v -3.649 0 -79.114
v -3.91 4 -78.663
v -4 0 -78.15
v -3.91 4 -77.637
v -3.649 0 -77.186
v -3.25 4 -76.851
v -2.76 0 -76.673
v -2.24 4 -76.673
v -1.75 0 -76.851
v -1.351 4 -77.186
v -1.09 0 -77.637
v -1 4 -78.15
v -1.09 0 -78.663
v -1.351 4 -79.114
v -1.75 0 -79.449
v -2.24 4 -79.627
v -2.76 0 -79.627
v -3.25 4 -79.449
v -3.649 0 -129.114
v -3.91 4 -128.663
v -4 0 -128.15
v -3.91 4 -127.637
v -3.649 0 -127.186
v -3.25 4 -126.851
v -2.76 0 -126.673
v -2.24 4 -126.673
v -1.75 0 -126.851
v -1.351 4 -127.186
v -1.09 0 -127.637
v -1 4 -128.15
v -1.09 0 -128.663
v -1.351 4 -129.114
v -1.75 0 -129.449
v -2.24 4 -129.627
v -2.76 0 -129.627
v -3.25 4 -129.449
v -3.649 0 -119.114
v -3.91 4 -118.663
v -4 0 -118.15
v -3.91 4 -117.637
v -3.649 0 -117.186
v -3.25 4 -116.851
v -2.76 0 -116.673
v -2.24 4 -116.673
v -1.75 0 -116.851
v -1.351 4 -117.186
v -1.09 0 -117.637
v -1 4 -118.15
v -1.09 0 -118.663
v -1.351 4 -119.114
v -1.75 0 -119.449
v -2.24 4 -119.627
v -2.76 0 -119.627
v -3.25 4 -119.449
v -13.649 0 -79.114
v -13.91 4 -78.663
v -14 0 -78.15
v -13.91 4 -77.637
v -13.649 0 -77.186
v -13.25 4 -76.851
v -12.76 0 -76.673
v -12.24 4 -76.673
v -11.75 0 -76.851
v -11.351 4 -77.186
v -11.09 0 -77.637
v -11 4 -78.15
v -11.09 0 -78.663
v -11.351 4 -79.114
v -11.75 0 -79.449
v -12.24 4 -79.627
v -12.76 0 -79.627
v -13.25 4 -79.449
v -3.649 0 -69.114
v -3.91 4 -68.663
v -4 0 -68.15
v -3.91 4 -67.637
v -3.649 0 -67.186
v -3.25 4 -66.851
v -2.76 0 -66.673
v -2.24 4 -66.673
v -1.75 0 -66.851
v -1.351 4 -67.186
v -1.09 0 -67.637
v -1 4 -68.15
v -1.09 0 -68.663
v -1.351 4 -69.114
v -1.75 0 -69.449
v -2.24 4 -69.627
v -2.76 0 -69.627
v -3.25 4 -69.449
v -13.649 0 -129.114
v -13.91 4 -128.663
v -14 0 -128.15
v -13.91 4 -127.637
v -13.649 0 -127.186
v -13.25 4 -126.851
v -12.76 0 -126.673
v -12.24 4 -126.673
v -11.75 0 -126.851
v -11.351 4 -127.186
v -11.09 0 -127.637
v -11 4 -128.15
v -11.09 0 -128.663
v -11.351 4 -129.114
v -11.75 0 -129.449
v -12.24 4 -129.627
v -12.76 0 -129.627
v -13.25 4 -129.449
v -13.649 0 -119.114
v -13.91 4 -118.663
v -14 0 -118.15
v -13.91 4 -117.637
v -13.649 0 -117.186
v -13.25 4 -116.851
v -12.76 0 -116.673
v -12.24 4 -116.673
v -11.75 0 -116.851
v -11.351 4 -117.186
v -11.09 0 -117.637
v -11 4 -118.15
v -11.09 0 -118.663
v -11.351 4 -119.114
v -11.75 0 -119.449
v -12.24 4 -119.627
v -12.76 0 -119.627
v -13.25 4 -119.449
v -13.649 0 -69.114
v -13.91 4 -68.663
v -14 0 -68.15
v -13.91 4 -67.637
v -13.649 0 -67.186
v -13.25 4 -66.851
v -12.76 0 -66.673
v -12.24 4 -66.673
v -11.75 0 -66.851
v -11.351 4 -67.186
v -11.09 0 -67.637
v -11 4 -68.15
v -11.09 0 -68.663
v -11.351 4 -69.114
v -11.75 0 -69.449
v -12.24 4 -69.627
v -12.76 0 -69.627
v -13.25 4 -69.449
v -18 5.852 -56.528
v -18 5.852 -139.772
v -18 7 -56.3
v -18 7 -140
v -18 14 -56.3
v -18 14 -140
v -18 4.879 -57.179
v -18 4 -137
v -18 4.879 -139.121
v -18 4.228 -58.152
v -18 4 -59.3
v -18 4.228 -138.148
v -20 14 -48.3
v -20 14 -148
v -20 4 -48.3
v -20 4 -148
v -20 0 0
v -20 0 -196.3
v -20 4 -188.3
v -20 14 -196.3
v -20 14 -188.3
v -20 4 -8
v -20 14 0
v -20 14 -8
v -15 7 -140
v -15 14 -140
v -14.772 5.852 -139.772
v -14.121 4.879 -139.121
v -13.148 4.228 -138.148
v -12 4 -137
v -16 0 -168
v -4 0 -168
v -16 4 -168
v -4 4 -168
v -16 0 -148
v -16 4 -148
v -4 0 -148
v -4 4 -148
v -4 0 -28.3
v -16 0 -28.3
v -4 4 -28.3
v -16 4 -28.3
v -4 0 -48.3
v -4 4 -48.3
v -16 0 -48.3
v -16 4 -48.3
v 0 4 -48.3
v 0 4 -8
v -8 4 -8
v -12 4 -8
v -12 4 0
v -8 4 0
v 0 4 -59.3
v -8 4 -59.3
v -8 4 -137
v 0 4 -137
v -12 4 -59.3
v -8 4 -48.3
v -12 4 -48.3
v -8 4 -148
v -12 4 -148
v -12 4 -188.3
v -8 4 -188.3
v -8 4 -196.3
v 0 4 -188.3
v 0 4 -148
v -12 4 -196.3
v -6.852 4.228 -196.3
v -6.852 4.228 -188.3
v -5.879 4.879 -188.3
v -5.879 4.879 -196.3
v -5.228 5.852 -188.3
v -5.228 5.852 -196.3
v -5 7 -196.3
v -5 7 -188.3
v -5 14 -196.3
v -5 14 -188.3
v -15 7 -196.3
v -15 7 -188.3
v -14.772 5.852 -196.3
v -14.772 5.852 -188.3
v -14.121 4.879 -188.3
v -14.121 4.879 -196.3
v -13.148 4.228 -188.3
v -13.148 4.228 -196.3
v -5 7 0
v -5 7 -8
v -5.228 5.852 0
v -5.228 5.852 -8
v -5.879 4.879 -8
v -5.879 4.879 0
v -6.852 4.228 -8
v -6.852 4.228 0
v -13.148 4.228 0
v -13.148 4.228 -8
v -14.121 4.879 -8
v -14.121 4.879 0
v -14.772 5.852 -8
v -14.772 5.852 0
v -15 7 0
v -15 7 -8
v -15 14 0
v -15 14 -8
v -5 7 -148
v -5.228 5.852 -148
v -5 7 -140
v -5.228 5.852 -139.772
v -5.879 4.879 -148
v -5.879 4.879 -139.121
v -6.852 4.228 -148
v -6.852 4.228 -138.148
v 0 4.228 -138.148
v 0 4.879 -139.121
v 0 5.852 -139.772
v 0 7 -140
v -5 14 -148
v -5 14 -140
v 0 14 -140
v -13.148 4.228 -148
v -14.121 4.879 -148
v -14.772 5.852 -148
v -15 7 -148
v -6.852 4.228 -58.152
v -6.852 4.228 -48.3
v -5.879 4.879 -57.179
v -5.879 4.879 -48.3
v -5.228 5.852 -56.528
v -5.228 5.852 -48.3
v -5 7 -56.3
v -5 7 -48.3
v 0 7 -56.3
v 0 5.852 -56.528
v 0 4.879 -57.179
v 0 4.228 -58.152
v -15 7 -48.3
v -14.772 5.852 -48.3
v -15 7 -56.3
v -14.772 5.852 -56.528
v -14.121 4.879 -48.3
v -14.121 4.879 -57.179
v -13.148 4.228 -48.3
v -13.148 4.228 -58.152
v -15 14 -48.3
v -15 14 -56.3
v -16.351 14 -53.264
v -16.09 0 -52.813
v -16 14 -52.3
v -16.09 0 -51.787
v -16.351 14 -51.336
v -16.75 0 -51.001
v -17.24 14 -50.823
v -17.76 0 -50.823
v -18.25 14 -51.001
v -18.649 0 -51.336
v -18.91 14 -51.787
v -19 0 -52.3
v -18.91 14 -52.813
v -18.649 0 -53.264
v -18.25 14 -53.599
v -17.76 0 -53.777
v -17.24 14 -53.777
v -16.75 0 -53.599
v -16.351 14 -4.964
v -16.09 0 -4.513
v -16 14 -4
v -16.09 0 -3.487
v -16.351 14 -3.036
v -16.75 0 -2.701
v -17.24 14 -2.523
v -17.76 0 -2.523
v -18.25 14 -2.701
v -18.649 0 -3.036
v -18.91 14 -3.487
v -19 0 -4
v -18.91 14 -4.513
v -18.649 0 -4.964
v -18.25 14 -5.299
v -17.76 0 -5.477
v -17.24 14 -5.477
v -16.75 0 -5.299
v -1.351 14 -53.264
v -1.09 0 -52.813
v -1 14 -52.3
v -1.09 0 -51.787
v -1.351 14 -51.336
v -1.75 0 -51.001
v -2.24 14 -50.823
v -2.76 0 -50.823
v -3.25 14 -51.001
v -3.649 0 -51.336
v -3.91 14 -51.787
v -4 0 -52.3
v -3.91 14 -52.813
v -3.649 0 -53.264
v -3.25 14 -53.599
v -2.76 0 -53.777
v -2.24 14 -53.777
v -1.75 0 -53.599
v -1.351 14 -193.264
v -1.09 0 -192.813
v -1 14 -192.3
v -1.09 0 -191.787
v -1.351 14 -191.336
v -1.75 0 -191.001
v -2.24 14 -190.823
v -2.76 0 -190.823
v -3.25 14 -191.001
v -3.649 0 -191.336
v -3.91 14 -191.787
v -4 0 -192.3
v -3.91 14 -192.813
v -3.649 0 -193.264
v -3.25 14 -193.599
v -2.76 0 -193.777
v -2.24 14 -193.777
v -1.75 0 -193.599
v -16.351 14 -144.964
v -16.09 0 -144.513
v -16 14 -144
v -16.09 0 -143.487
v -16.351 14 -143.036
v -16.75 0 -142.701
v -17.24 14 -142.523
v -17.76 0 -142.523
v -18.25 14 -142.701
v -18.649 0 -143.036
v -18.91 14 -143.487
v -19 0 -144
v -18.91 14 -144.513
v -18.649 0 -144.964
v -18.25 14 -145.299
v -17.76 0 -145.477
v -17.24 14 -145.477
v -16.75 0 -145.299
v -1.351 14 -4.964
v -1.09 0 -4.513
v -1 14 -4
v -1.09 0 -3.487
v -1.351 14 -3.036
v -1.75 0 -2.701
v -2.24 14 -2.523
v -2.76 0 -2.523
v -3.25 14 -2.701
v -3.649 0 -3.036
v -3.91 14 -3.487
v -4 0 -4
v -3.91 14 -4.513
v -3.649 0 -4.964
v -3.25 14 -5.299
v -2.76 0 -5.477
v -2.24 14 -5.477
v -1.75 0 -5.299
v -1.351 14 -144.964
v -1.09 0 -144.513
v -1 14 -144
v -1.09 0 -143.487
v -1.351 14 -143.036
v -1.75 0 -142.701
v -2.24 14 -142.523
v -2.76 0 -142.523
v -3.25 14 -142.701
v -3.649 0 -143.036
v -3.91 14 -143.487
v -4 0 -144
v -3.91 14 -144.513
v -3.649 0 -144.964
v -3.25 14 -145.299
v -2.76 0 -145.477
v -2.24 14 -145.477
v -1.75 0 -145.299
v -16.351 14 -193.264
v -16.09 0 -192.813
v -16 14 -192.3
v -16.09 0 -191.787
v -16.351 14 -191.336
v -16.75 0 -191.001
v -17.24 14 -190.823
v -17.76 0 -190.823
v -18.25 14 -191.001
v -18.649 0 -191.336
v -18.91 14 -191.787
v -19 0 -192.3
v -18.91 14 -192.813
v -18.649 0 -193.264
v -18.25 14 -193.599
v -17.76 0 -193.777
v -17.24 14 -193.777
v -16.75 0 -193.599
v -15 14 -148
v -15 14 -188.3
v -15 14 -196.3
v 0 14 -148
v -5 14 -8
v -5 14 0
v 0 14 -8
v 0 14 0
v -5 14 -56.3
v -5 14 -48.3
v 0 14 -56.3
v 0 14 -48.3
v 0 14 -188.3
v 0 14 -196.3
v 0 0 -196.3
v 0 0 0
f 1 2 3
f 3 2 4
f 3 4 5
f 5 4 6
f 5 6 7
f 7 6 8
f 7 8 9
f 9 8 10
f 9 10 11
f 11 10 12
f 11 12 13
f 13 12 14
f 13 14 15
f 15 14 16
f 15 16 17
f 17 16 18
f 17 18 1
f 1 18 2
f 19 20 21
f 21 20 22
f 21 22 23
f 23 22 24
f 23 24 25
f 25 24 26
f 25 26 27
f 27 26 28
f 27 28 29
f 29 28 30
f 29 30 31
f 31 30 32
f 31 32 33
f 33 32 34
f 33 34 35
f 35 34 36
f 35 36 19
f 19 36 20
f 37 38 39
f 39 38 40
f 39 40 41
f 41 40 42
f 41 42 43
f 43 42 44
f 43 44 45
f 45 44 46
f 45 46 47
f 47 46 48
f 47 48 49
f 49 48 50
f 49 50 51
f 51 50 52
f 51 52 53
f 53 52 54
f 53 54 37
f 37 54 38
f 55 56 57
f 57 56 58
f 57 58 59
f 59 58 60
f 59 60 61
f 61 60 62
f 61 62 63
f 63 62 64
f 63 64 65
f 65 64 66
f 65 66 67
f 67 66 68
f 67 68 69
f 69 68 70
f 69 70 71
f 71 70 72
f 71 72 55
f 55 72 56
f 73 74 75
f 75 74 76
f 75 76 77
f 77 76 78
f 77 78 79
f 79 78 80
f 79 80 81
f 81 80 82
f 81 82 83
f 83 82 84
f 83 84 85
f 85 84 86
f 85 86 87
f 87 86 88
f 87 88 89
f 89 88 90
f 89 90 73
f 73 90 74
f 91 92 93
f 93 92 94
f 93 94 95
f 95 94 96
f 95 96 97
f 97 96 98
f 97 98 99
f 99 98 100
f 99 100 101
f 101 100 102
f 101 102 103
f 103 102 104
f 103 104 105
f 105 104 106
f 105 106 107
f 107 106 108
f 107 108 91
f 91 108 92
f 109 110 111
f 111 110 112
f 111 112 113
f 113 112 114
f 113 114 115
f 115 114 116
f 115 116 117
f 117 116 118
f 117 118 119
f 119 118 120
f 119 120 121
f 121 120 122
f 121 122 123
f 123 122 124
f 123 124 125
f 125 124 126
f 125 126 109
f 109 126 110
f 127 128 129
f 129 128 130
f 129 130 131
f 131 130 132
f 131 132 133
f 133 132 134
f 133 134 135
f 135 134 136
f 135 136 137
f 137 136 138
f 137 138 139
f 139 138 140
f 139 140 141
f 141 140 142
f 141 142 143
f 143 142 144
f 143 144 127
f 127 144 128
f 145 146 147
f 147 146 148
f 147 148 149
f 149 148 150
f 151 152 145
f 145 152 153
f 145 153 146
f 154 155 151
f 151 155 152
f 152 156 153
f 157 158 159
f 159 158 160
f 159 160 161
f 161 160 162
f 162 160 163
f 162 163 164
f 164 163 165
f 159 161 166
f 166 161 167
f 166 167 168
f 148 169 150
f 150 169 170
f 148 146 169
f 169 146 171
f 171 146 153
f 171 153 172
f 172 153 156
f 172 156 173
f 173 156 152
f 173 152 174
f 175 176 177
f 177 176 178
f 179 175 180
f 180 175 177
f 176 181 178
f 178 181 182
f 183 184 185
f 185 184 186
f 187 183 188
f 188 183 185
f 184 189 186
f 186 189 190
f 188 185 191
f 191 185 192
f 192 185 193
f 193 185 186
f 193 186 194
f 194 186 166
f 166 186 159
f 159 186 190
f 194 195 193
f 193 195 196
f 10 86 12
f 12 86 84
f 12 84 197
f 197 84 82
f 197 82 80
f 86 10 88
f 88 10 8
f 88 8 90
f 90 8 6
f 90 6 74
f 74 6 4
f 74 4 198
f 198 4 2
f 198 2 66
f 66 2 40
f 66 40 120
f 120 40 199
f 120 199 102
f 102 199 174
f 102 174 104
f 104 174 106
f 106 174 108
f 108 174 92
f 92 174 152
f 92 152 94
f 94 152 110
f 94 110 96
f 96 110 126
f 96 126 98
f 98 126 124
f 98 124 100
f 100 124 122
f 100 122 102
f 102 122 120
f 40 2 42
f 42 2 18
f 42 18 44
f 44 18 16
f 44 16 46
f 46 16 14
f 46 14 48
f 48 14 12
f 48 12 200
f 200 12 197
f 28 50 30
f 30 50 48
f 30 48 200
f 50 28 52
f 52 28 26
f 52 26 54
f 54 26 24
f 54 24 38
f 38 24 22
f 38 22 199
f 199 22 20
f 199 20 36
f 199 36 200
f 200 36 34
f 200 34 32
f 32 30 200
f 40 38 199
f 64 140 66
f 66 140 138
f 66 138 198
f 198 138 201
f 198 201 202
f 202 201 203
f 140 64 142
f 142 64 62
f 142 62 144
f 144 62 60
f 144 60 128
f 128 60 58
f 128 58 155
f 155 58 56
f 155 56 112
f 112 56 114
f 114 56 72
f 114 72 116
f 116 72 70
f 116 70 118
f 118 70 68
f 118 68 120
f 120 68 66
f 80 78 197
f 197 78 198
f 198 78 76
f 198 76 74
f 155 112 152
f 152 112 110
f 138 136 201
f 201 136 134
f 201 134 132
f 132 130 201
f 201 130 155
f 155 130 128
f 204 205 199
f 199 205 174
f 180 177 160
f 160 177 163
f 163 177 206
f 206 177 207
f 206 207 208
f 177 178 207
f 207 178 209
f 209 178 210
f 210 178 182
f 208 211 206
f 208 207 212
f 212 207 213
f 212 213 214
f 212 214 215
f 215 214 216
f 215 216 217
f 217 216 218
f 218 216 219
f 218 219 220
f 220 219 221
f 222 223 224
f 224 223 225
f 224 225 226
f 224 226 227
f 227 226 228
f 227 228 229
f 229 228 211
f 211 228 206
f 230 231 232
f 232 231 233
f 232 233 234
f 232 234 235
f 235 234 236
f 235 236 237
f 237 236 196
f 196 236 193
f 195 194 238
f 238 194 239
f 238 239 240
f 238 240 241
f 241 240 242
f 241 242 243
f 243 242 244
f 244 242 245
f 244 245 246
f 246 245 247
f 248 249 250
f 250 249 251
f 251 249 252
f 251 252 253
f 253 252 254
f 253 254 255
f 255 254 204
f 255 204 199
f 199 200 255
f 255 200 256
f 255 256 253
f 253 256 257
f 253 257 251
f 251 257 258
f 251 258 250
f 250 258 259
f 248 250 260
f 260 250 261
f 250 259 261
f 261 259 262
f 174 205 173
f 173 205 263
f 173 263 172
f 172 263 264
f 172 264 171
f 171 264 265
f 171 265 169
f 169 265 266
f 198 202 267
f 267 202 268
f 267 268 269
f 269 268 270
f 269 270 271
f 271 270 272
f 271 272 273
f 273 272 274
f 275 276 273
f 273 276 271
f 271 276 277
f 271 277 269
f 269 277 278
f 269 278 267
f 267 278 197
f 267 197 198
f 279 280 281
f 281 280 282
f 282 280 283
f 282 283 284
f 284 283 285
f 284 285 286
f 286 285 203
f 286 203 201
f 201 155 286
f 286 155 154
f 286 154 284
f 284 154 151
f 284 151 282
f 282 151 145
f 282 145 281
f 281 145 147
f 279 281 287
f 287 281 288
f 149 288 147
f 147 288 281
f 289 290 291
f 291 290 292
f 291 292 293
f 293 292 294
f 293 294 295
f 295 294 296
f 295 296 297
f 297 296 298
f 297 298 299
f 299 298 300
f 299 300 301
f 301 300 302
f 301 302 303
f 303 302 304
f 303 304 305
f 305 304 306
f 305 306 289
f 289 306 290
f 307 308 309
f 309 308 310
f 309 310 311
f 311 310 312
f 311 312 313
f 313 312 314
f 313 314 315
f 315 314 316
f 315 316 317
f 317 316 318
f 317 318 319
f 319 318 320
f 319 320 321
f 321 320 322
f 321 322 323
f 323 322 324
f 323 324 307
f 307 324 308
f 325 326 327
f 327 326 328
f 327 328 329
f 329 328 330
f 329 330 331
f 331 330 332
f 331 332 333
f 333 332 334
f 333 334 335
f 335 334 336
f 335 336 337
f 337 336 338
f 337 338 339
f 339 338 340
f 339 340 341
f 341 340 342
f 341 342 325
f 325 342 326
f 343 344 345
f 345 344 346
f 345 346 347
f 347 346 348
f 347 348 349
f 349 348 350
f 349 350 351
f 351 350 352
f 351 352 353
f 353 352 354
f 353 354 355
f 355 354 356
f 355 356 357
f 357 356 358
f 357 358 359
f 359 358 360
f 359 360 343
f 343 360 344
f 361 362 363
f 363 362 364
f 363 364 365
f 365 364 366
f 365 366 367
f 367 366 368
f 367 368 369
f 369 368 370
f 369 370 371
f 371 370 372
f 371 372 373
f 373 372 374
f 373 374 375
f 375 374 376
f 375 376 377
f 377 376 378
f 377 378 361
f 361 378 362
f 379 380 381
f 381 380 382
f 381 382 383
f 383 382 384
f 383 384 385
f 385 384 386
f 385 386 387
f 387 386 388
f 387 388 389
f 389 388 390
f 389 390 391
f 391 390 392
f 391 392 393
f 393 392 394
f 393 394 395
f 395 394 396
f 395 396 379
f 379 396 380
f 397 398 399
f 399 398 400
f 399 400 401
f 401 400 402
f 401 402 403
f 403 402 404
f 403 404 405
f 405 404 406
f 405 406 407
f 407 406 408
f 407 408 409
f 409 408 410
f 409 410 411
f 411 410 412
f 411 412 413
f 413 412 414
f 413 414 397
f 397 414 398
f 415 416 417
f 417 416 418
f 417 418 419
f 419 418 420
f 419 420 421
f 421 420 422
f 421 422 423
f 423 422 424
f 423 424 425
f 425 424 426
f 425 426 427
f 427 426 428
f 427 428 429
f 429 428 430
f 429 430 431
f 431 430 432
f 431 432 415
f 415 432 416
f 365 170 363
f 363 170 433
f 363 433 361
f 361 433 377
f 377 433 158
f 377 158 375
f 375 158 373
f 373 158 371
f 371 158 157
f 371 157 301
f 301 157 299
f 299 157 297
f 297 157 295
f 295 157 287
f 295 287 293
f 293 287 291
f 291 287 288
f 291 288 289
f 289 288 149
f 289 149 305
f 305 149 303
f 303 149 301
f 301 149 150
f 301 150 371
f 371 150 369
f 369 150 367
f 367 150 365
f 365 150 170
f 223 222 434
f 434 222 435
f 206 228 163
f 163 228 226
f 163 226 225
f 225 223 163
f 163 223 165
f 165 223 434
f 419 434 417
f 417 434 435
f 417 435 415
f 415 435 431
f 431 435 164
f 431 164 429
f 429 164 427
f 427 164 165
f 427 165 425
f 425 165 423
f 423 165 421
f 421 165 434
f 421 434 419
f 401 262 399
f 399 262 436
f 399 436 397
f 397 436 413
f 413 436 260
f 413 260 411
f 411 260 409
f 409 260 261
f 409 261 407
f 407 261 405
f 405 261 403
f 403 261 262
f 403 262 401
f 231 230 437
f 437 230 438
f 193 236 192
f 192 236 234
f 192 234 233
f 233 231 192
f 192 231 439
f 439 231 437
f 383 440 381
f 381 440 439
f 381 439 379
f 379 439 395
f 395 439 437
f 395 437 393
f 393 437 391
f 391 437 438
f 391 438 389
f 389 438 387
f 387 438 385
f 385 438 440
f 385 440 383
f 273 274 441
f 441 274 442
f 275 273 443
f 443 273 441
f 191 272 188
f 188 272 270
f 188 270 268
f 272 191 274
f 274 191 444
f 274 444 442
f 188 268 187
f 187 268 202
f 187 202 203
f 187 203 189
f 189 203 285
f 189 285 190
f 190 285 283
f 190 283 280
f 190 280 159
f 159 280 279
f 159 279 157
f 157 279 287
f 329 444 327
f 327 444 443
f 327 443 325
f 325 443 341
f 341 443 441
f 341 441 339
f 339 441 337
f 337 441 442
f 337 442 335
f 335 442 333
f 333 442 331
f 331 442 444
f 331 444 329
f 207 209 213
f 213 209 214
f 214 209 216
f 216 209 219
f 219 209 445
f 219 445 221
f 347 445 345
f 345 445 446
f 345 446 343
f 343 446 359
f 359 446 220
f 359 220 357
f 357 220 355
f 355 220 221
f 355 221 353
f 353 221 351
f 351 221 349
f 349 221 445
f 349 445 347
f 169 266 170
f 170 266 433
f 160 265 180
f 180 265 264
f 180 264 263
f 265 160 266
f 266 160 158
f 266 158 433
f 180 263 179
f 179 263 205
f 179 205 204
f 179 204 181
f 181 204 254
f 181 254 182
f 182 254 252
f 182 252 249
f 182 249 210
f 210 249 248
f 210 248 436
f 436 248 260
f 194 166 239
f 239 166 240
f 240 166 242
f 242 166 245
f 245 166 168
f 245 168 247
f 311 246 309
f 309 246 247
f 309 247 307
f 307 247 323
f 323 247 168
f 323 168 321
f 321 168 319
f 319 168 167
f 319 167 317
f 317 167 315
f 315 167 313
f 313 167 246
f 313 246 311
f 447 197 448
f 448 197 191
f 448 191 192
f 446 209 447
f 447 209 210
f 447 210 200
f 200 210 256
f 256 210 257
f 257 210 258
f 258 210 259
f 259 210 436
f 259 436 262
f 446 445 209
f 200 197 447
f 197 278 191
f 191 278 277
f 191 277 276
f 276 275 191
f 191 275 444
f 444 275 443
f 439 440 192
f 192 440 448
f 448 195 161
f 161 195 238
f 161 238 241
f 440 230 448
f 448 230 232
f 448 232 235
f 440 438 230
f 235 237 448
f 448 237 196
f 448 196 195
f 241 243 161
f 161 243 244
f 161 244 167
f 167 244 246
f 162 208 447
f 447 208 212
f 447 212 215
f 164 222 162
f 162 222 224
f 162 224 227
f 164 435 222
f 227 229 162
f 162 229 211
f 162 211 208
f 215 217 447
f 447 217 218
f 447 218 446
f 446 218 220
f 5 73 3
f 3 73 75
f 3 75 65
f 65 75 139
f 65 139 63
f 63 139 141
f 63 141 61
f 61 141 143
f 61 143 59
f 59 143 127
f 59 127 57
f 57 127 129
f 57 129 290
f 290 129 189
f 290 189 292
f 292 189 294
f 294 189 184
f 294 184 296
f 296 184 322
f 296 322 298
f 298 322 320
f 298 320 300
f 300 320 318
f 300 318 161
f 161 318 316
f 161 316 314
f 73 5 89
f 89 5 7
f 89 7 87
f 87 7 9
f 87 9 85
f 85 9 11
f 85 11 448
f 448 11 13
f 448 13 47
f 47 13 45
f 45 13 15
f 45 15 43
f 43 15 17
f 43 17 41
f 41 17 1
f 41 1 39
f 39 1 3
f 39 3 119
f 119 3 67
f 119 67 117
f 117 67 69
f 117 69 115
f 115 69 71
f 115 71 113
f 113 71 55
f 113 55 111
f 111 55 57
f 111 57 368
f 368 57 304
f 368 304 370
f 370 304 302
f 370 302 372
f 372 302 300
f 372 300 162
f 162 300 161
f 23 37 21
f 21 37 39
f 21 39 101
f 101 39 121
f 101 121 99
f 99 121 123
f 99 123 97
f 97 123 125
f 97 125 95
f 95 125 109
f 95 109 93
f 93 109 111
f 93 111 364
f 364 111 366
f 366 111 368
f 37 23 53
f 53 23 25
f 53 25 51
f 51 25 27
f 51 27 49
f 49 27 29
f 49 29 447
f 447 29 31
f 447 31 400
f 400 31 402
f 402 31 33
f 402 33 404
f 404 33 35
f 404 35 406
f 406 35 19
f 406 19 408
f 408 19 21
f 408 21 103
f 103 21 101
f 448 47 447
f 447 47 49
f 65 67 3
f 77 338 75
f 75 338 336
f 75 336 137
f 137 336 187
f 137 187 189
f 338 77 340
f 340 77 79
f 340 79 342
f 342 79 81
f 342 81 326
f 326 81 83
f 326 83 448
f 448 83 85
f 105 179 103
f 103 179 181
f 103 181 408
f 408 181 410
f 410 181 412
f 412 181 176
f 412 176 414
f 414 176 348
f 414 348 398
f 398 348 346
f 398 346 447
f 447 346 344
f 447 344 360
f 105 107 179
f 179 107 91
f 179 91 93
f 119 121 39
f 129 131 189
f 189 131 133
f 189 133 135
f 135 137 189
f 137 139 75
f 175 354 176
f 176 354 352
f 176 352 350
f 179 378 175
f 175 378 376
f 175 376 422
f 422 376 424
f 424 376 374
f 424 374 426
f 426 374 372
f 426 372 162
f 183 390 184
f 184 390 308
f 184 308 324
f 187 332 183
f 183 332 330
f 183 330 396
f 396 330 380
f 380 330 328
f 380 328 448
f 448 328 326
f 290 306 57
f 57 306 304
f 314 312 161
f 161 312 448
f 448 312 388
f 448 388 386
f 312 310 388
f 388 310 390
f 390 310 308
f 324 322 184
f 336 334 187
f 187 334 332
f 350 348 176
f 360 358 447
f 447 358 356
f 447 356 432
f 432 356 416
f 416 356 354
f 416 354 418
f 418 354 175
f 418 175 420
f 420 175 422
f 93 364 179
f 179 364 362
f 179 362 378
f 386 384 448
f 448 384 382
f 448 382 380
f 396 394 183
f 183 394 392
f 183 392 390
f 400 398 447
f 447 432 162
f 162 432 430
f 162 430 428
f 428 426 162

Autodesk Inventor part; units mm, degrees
ref_plane "YZ Plane" through (0, 0, 0) normal (1, 0, 0) x (0, 1, 0)
ref_plane "XZ Plane" through (0, 0, 0) normal (0, 1, 0) x (-1, 0, 0)
ref_plane "XY Plane" through (0, 0, 0) normal (0, 0, 1) x (1, 0, 0)
sketch "Sketch1" plane through (0, 0, 0) normal (0, 1, 0) x (-1, 0, 0)
  line L0 (0, 0) -> (20, 0)
  line L1 (20, 0) -> (20, -196.3)
  line L2 (20, -196.3) -> (0, -196.3)
  line L3 (0, -196.3) -> (0, 0)
  dimension "d0" = 20
  dimension "d1" = 196.3
extrude "Extrusion1" add sketch "Sketch1" along normal blind 4
sketch "Sketch2" plane through (0, 4, 0) normal (0, 1, 0) x (1, 0, 0)
  line L0 (-20, 0) -> (0, 0) projected
  line L1 (0, 0) -> (0, 196.3) projected
  line L2 (-20, 0) -> (0, 0)
  line L3 (0, 0) -> (0, 8)
  line L4 (0, 8) -> (-20, 8)
  line L5 (-20, 8) -> (-20, 0)
  line L6 (-20, 8) -> (0, 8)
  line L7 (0, 8) -> (0, 48.3)
  line L8 (0, 48.3) -> (-20, 48.3)
  line L9 (-20, 48.3) -> (-20, 8)
  line L10 (-20, 48.3) -> (0, 48.3)
  line L11 (0, 48.3) -> (0, 56.3)
  line L12 (0, 56.3) -> (-20, 56.3)
  line L13 (-20, 56.3) -> (-20, 48.3)
  line L14 (-20, 196.3) -> (-20, 0) projected
  line L15 (-20, 196.3) -> (0, 196.3)
  line L16 (0, 196.3) -> (0, 188.3)
  line L17 (0, 188.3) -> (-20, 188.3)
  line L18 (-20, 188.3) -> (-20, 196.3)
  line L19 (-20, 188.3) -> (0, 188.3)
  line L20 (0, 188.3) -> (0, 148)
  line L21 (0, 148) -> (-20, 148)
  line L22 (-20, 148) -> (-20, 188.3)
  line L23 (-20, 148) -> (0, 148)
  line L24 (0, 148) -> (0, 140)
  line L25 (0, 140) -> (-20, 140)
  line L26 (-20, 140) -> (-20, 148)
  line L27 (-20, 0) -> (-15, 0)
  line L28 (-15, 0) -> (-15, 8)
  line L29 (-15, 8) -> (-20, 8)
  line L30 (-20, 8) -> (-20, 0)
  line L31 (0, 8) -> (-5, 8)
  line L32 (-5, 8) -> (-5, 0)
  line L33 (-5, 0) -> (0, 0)
  line L34 (0, 0) -> (0, 8)
  line L35 (-20, 48.3) -> (-15, 48.3)
  line L36 (-15, 48.3) -> (-15, 56.3)
  line L37 (-15, 56.3) -> (-20, 56.3)
  line L38 (-20, 56.3) -> (-20, 48.3)
  line L39 (0, 48.3) -> (-5, 48.3)
  line L40 (-5, 48.3) -> (-5, 56.3)
  line L41 (-5, 56.3) -> (0, 56.3)
  line L42 (0, 56.3) -> (0, 48.3)
  line L43 (-20, 140) -> (-15, 140)
  line L44 (-15, 140) -> (-15, 148)
  line L45 (-15, 148) -> (-20, 148)
  line L46 (-20, 148) -> (-20, 140)
  line L47 (0, 140) -> (-5, 140)
  line L48 (-5, 140) -> (-5, 148)
  line L49 (-5, 148) -> (0, 148)
  line L50 (0, 148) -> (0, 140)
  line L51 (-20, 188.3) -> (-15, 188.3)
  line L52 (-15, 188.3) -> (-15, 196.3)
  line L53 (-15, 196.3) -> (-20, 196.3)
  line L54 (-20, 196.3) -> (-20, 188.3)
  line L55 (0, 188.3) -> (-5, 188.3)
  line L56 (-5, 188.3) -> (-5, 196.3)
  line L57 (-5, 196.3) -> (0, 196.3)
  line L58 (0, 196.3) -> (0, 188.3)
  point P0 (0, 188.3)
  point P1 (-15, 140)
  point P2 (-20, 148)
  point P3 (-20, 140)
  dimension "d4" = 8
  dimension "d5" = 40.3
  dimension "d6" = 8
  dimension "d7" = 20
  dimension "d8" = 8
  dimension "d9" = 40.3
  dimension "d10" = 8
  dimension "d11" = 5
  dimension "d12" = 5
  dimension "d13" = 8
  dimension "d14" = 5
  dimension "d15" = 5
  dimension "d16" = 5
  dimension "d17" = 5
  dimension "d18" = 5
  dimension "d19" = 5
extrude "Extrusion2" add sketch "Sketch2" along normal blind 10 contours L5 L4 L28 L0 | L32 L4 L1 L0 | L13 L12 L36 L8 | L40 L12 L1 L8 | L14 L21 L44 L25 | L14 L15 L52 L17 | L48 L21 L1 L25 | L56 L15 L1 L17
sketch "Sketch3" plane through (0, 14, 0) normal (0, 1, 0) x (1, 0, 0)
  line L0 (-20, 196.3) -> (-20, 0) projected
  line L1 (-20, 0) -> (-17.5, 0)
  line L2 (-17.5, 0) -> (-17.5, 4)
  line L3 (-17.5, 4) -> (-20, 4)
  line L4 (-20, 4) -> (-20, 0)
  line L5 (0, 0) -> (0, 196.3) projected
  line L6 (0, 0) -> (-2.5, 0)
  line L7 (-2.5, 0) -> (-2.5, 4)
  line L8 (-2.5, 4) -> (0, 4)
  line L9 (0, 4) -> (0, 0)
  line L10 (-15, 56.3) -> (-20, 56.3) projected
  line L11 (-20, 56.3) -> (-17.5, 56.3)
  line L12 (-17.5, 56.3) -> (-17.5, 52.3)
  line L13 (-17.5, 52.3) -> (-20, 52.3)
  line L14 (-20, 52.3) -> (-20, 56.3)
  line L15 (-5, 56.3) -> (0, 56.3) projected
  line L16 (-5, 56.3) -> (-2.5, 56.3)
  line L17 (-2.5, 56.3) -> (-2.5, 52.3)
  line L18 (-2.5, 52.3) -> (-5, 52.3)
  line L19 (-5, 52.3) -> (-5, 56.3)
  line L20 (-20, 196.3) -> (-17.5, 196.3)
  line L21 (-17.5, 196.3) -> (-17.5, 192.3)
  line L22 (-17.5, 192.3) -> (-20, 192.3)
  line L23 (-20, 192.3) -> (-20, 196.3)
  line L24 (-5, 196.3) -> (-2.5, 196.3)
  line L25 (-2.5, 196.3) -> (-2.5, 192.3)
  line L26 (-2.5, 192.3) -> (-5, 192.3)
  line L27 (-5, 192.3) -> (-5, 196.3)
  line L28 (-20, 148) -> (-15, 148) projected
  line L29 (-15, 148) -> (-17.5, 148)
  line L30 (-17.5, 148) -> (-17.5, 144)
  line L31 (-17.5, 144) -> (-15, 144)
  line L32 (-15, 144) -> (-15, 148)
  line L33 (-5, 148) -> (-2.5, 148)
  line L34 (-2.5, 148) -> (-2.5, 144)
  line L35 (-2.5, 144) -> (-5, 144)
  line L36 (-5, 144) -> (-5, 148)
  circle A0 centre (-17.5, 144) radius 1.5
  circle A1 centre (-2.5, 144) radius 1.5
  circle A2 centre (-17.5, 192.3) radius 1.5
  circle A3 centre (-2.5, 192.3) radius 1.5
  circle A4 centre (-17.5, 52.3) radius 1.5
  circle A5 centre (-2.5, 52.3) radius 1.5
  circle A6 centre (-17.5, 4) radius 1.5
  circle A7 centre (-2.5, 4) radius 1.5
  dimension "d22" = 2.5
  dimension "d23" = 4
  dimension "d24" = 2.5
  dimension "d25" = 4
  dimension "d26" = 2.5
  dimension "d27" = 4
  dimension "d28" = 2.5
  dimension "d29" = 4
  dimension "d30" = 2.5
  dimension "d31" = 4
  dimension "d32" = 2.5
  dimension "d33" = 4
  dimension "d34" = 2.5
  dimension "d35" = 4
  dimension "d36" = 2.5
  dimension "d37" = 4
  dimension "d38" = 3
  dimension "d39" = 3
  dimension "d40" = 3
  dimension "d41" = 3
  dimension "d42" = 3
  dimension "d43" = 3
  dimension "d44" = 3
  dimension "d45" = 3
extrude "Extrusion3" cut sketch "Sketch3" against normal up to surface (14 mm away) contours A2 L21 L22 | L22 L21 A2 | A0 L31 L30 | L30 L31 A0 | A4 L12 L13 | L13 L12 A4 | A6 L2 L3 | L3 L2 A6 | A7 L7 L8 | L8 L7 A7 | A5 L18 L17 | L17 L18 A5 | A3 L26 L25 | L25 L26 A3 | A1 L35 L34 | L34 L35 A1
fillet "Fillet1" radius 3 12 edges at (-15, 4, -52.3) (-5, 4, -52.3) (-15, 4, -144) (-2.5, 4, -140) (-2.5, 4, -56.3) (-5, 4, -144) (-15, 4, -4) (-5, 4, -4) (-15, 4, -192.3) (-5, 4, -192.3) (-17.5, 4, -56.3) (-17.5, 4, -140)
sketch "Sketch5" plane through (0, 4, 0) normal (0, 1, 0) x (1, 0, 0)
  line L0 (0, 48.3) -> (-8, 48.3) projected
  line L1 (0, 48.3) -> (-4, 48.3)
  line L2 (-8, 148) -> (0, 148) projected
  line L3 (0, 148) -> (-4, 148)
  line L4 (-4, 148) -> (-16, 148)
  line L5 (-16, 148) -> (-16, 168)
  line L6 (-16, 168) -> (-4, 168)
  line L7 (-4, 168) -> (-4, 148)
  line L8 (-4, 48.3) -> (-16, 48.3)
  line L9 (-16, 48.3) -> (-16, 28.3)
  line L10 (-16, 28.3) -> (-4, 28.3)
  line L11 (-4, 28.3) -> (-4, 48.3)
  point P0 (0, 0)
  dimension "d63" = 4
  dimension "d64" = 4
  dimension "d65" = 12
  dimension "d66" = 20
  dimension "d67" = 12
  dimension "d68" = 20
extrude "Extrusion5" cut sketch "Sketch5" against normal blind 8
sketch "Sketch6" plane through (0, 0, 0) normal (0, -1, 0) x (1, 0, 0)
  circle A0 centre (-2.5, -4) radius 1.5 projected
  circle A1 centre (-2.5, -4) radius 4
  circle A2 centre (-17.5, -4) radius 1.5 projected
  circle A3 centre (-17.5, -4) radius 4
  circle A4 centre (-17.5, -52.3) radius 1.5 projected
  circle A5 centre (-17.5, -52.3) radius 4
  circle A6 centre (-2.5, -52.3) radius 1.5 projected
  circle A7 centre (-2.5, -52.3) radius 4
  circle A8 centre (-17.5, -144) radius 1.5 projected
  circle A9 centre (-17.5, -144) radius 4
  circle A10 centre (-2.5, -144) radius 1.5 projected
  circle A11 centre (-2.5, -144) radius 4
  circle A12 centre (-17.5, -192.3) radius 1.5 projected
  circle A13 centre (-17.5, -192.3) radius 4
  circle A14 centre (-2.5, -192.3) radius 1.5 projected
  circle A15 centre (-2.5, -192.3) radius 4
  line L0 (0, -196.3) -> (-20, -196.3) projected
  line L1 (-20, -196.3) -> (-17.5, -196.3)
  line L2 (-17.5, -196.3) -> (-17.5, -192.3)
  line L3 (-17.5, -192.3) -> (-20, -192.3)
  line L4 (-20, -192.3) -> (-20, -196.3)
  line L5 (0, -196.3) -> (-2.5, -196.3)
  line L6 (-2.5, -196.3) -> (-2.5, -192.3)
  line L7 (-2.5, -192.3) -> (0, -192.3)
  line L8 (0, -192.3) -> (0, -196.3)
  line L9 (-20, -196.3) -> (-20, 0) projected
  line L10 (-20, 0) -> (-17.5, 0)
  line L11 (-17.5, 0) -> (-17.5, -4)
  line L12 (-17.5, -4) -> (-20, -4)
  line L13 (-20, -4) -> (-20, 0)
  line L14 (0, 0) -> (-2.5, 0)
  line L15 (-2.5, 0) -> (-2.5, -4)
  line L16 (-2.5, -4) -> (0, -4)
  line L17 (0, -4) -> (0, 0)
  dimension "d71" = 8
  dimension "d72" = 8
  dimension "d73" = 8
  dimension "d74" = 8
  dimension "d75" = 8
  dimension "d76" = 8
  dimension "d77" = 8
sketch "Sketch7" plane through (0, 4, 0) normal (0, 1, 0) x (1, 0, 0)
  line L0 (-20, 188.3) -> (-20, 148) projected
  line L1 (-20, 140) -> (-15, 140) projected
  line L2 (-20, 56.3) -> (-18, 56.3)
  line L3 (-18, 56.3) -> (-18, 140)
  line L4 (-18, 140) -> (-20, 140)
  line L5 (-20, 140) -> (-20, 56.3)
  point P0 (0, 0)
  dimension "d78" = 2
extrude "Extrusion6" add sketch "Sketch7" along normal blind 10
sketch "Sketch8" plane through (0, 4, 0) normal (0, 1, 0) x (1, 0, 0)
  line L0 (0, 59.3) -> (0, 137) projected
  line L1 (0, 59.3) -> (0, 137)
  line L2 (0, 137) -> (0, 59.3)
  line L3 (0, 0) -> (0, 196.3) projected
  line L4 (0, 98.15) -> (0, 128.15)
  line L5 (0, 128.15) -> (-2.5, 128.15)
  line L6 (-2.5, 128.15) -> (-2.5, 68.15)
  line L7 (-2.5, 68.15) -> (0, 68.15)
  line L8 (0, 68.15) -> (0, 128.15)
  line L9 (-2.5, 128.15) -> (-12.5, 128.15)
  line L10 (-12.5, 128.15) -> (-12.5, 68.15)
  line L11 (-12.5, 68.15) -> (-2.5, 68.15)
  line L12 (-2.5, 68.15) -> (-2.5, 128.15)
  circle A0 centre (-12.5, 128.15) radius 1.5
  circle A1 centre (-2.5, 128.15) radius 1.5
  circle A2 centre (-12.5, 68.15) radius 1.5
  circle A3 centre (-2.5, 68.15) radius 1.5
  line L13 (-12.5, 128.15) -> (-2.5, 128.15)
  line L14 (-2.5, 128.15) -> (-2.5, 118.15)
  line L15 (-2.5, 118.15) -> (-12.5, 118.15)
  line L16 (-12.5, 118.15) -> (-12.5, 128.15)
  line L17 (-12.5, 68.15) -> (-2.5, 68.15)
  line L18 (-2.5, 68.15) -> (-2.5, 78.15)
  line L19 (-2.5, 78.15) -> (-12.5, 78.15)
  line L20 (-12.5, 78.15) -> (-12.5, 68.15)
  circle A4 centre (-12.5, 118.15) radius 1.5
  circle A5 centre (-2.5, 118.15) radius 1.5
  circle A6 centre (-12.5, 78.15) radius 1.5
  circle A7 centre (-2.5, 78.15) radius 1.5
  dimension "d81" = 30
  dimension "d82" = 2.5
  dimension "d83" = 60
  dimension "d84" = 10
  dimension "d85" = 3
  dimension "d86" = 3
  dimension "d87" = 3
  dimension "d88" = 3
  dimension "d89" = 10
  dimension "d90" = 10
  dimension "d91" = 3
  dimension "d92" = 3
  dimension "d93" = 3
  dimension "d94" = 3
extrude "Extrusion7" cut sketch "Sketch8" against normal blind 10 contours A3 L11 L7 | L7 L6 A3 | L11 A3 L6 | A1 L6 L5 | L5 L9 A1 | A7 L19 L6 | L6 A7 | A2 L10 L11 | L11 L10 A2 | L6 A1 L9 | L19 A7 L6 | A0 L10 L9 | L9 L10 A0 | A5 L6 | L6 L15 A5 | A6 L10 L19 | L19 L10 A6 | A6 L10 | L6 A5 L15 | A4 L15 L10 | L10 A4 | A4 L10 L15
properties part number "support_2_servos"
